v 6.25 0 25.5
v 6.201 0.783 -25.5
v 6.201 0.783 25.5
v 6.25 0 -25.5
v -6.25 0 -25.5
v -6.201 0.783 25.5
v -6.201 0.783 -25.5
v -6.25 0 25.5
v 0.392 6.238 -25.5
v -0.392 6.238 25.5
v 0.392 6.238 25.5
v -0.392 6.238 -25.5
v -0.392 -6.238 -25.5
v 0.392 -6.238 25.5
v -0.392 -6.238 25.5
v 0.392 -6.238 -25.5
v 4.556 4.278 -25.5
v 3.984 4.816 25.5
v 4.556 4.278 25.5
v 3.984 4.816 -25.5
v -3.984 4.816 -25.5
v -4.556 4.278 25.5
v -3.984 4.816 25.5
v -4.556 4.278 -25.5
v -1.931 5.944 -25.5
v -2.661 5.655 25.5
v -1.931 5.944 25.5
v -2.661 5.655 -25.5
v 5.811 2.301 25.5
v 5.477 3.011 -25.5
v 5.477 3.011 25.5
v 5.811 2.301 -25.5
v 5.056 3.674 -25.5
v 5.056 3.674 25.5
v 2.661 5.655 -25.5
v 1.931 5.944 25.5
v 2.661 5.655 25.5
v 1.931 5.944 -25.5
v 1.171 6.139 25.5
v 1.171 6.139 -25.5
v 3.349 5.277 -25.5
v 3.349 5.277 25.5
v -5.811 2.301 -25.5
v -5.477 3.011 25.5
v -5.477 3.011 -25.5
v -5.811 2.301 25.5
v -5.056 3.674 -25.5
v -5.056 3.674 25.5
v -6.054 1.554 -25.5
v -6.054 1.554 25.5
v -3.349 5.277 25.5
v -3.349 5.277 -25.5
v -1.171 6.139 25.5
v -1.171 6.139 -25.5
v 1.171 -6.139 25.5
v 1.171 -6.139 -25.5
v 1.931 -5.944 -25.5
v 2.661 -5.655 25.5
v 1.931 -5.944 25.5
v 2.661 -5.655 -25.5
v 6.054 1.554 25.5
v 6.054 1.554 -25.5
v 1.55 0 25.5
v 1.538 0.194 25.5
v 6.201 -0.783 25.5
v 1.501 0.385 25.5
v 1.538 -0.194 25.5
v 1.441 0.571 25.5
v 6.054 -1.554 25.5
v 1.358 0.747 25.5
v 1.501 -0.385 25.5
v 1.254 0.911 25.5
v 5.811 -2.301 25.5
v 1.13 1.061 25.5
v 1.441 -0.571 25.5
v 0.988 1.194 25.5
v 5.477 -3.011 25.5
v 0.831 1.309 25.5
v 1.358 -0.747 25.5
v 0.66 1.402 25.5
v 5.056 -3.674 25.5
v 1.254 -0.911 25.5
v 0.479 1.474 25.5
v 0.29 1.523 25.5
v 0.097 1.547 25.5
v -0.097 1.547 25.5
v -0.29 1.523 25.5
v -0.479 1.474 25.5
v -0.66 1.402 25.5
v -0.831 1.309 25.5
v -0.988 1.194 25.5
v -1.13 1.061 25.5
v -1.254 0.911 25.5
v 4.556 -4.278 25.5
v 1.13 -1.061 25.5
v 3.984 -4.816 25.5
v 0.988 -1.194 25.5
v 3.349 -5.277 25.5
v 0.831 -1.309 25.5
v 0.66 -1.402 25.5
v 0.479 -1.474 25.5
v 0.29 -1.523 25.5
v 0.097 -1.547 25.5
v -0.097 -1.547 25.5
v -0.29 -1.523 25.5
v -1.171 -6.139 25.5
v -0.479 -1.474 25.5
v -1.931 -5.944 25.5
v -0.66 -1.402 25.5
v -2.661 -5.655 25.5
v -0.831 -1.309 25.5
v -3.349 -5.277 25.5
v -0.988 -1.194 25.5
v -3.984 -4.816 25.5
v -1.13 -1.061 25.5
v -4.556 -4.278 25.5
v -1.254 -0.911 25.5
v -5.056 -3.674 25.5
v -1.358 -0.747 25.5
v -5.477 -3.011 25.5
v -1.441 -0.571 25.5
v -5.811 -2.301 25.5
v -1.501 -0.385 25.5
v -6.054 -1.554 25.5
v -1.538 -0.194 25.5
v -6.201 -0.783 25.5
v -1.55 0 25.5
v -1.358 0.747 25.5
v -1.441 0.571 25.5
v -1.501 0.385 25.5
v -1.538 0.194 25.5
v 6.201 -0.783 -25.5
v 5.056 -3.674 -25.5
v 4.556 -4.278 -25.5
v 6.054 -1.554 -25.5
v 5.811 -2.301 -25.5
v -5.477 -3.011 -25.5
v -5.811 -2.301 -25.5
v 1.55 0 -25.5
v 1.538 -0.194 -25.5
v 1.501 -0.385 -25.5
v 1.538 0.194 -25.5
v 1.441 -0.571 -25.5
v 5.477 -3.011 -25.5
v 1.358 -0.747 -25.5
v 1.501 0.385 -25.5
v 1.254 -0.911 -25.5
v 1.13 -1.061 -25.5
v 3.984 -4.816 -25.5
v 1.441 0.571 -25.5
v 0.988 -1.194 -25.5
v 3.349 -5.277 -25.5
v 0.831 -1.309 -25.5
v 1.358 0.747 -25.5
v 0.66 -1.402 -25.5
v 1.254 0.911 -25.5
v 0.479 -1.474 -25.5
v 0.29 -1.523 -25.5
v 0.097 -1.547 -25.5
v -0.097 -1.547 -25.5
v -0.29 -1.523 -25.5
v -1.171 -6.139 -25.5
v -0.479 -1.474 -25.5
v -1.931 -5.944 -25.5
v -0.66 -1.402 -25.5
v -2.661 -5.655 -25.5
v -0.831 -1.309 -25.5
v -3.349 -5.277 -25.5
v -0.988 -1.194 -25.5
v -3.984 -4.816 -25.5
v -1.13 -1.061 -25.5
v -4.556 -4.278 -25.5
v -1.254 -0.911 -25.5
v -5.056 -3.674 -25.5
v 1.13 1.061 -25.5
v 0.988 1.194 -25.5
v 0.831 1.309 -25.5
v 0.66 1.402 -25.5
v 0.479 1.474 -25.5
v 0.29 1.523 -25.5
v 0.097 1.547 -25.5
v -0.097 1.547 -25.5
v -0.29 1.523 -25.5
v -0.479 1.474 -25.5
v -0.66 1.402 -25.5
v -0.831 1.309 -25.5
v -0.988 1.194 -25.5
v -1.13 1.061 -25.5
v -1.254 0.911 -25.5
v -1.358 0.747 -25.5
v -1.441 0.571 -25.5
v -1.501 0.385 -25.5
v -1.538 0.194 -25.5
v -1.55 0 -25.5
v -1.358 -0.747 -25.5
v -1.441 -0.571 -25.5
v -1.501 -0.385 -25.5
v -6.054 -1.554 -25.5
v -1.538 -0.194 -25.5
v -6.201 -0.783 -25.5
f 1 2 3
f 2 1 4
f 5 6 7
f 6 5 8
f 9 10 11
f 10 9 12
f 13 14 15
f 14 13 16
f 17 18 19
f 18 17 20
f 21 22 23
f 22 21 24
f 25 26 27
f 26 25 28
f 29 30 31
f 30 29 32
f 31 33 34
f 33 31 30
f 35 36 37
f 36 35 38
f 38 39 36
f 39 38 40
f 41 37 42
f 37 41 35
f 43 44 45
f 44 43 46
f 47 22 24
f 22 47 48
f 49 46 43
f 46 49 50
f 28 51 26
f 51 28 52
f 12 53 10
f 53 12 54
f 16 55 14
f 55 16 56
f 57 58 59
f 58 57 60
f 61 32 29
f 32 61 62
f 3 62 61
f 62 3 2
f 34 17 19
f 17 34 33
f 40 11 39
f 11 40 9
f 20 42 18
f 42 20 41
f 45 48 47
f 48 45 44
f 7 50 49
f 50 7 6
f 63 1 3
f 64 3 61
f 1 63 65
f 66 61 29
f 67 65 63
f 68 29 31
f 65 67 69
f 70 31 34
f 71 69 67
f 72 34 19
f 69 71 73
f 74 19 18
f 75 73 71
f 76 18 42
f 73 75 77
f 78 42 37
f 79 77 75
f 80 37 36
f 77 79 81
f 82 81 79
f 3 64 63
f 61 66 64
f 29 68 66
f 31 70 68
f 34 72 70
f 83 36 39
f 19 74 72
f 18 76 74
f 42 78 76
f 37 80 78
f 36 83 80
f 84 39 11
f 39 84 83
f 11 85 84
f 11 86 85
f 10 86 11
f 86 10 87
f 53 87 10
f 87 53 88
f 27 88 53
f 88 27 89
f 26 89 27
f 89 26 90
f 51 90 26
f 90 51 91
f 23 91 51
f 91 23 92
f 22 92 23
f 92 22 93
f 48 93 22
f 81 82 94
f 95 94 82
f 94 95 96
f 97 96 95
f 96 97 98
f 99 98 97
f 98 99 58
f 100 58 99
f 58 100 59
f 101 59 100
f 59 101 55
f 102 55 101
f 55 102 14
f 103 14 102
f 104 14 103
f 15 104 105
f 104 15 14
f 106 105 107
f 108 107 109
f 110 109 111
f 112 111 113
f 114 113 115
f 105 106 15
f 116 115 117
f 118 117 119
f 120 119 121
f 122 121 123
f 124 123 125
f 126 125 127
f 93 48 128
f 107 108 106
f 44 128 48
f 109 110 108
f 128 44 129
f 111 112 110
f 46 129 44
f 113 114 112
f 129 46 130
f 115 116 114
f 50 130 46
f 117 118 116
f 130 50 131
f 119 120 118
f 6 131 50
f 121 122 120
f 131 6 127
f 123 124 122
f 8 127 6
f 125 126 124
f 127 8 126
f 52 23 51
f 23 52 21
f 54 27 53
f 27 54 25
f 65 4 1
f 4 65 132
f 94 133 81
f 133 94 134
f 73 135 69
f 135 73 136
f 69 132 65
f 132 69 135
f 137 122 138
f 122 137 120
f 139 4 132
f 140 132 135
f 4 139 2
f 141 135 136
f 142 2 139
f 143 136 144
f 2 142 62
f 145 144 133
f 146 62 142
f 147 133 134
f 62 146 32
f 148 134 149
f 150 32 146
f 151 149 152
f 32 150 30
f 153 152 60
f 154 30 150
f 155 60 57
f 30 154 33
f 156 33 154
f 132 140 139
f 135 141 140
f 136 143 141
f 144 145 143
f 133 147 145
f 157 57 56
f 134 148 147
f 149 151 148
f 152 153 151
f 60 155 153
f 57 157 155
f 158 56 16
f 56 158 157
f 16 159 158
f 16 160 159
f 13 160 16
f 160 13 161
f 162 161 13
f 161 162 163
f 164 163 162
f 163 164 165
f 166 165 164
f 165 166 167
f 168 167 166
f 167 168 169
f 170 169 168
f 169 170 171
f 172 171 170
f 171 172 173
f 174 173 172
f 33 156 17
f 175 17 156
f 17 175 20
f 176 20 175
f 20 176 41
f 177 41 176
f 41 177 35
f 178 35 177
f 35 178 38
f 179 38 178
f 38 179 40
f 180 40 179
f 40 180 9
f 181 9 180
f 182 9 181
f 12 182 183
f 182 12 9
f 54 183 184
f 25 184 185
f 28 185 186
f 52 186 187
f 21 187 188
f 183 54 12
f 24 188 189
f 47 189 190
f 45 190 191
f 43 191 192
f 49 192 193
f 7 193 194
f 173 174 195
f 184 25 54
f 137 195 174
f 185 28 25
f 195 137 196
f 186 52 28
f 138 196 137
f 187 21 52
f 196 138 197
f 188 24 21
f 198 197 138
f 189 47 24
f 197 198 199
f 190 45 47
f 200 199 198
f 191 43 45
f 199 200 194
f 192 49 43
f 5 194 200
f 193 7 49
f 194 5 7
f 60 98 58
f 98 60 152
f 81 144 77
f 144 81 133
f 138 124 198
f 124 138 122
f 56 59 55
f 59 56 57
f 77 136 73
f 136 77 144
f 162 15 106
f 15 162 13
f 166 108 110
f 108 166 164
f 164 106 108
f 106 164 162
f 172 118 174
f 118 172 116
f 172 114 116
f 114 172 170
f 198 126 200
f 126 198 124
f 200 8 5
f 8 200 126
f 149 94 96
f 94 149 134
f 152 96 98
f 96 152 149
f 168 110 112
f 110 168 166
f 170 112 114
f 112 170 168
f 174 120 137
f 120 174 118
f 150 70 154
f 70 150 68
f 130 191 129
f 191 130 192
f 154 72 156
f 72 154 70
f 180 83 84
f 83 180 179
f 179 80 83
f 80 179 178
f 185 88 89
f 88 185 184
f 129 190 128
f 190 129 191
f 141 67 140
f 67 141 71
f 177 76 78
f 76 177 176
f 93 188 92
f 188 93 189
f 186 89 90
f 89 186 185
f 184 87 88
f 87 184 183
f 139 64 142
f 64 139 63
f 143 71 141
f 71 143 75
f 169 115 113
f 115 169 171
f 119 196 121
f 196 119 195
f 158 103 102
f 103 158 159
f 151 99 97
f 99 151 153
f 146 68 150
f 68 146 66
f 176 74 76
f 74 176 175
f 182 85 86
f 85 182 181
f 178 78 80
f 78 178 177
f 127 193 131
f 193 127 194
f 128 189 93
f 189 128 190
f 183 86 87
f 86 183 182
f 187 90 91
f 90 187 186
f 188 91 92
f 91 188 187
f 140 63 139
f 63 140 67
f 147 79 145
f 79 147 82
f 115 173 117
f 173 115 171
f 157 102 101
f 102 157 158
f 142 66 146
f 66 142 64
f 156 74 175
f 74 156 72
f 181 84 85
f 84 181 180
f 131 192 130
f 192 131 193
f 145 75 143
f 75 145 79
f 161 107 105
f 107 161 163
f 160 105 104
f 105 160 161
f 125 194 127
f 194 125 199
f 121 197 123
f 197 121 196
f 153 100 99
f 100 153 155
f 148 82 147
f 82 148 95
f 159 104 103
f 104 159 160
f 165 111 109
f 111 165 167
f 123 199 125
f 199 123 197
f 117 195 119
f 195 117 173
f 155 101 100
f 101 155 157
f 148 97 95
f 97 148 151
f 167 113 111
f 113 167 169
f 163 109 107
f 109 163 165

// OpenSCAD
$fn = 50;


difference() {
	union() {
		translate(v = [0, 0, -25.5000000000]) {
			cylinder(h = 51, r = 6.2500000000);
		}
	}
	union() {
		translate(v = [0, 0, -100.0000000000]) {
			cylinder(h = 200, r = 1.5500000000);
		}
	}
}
